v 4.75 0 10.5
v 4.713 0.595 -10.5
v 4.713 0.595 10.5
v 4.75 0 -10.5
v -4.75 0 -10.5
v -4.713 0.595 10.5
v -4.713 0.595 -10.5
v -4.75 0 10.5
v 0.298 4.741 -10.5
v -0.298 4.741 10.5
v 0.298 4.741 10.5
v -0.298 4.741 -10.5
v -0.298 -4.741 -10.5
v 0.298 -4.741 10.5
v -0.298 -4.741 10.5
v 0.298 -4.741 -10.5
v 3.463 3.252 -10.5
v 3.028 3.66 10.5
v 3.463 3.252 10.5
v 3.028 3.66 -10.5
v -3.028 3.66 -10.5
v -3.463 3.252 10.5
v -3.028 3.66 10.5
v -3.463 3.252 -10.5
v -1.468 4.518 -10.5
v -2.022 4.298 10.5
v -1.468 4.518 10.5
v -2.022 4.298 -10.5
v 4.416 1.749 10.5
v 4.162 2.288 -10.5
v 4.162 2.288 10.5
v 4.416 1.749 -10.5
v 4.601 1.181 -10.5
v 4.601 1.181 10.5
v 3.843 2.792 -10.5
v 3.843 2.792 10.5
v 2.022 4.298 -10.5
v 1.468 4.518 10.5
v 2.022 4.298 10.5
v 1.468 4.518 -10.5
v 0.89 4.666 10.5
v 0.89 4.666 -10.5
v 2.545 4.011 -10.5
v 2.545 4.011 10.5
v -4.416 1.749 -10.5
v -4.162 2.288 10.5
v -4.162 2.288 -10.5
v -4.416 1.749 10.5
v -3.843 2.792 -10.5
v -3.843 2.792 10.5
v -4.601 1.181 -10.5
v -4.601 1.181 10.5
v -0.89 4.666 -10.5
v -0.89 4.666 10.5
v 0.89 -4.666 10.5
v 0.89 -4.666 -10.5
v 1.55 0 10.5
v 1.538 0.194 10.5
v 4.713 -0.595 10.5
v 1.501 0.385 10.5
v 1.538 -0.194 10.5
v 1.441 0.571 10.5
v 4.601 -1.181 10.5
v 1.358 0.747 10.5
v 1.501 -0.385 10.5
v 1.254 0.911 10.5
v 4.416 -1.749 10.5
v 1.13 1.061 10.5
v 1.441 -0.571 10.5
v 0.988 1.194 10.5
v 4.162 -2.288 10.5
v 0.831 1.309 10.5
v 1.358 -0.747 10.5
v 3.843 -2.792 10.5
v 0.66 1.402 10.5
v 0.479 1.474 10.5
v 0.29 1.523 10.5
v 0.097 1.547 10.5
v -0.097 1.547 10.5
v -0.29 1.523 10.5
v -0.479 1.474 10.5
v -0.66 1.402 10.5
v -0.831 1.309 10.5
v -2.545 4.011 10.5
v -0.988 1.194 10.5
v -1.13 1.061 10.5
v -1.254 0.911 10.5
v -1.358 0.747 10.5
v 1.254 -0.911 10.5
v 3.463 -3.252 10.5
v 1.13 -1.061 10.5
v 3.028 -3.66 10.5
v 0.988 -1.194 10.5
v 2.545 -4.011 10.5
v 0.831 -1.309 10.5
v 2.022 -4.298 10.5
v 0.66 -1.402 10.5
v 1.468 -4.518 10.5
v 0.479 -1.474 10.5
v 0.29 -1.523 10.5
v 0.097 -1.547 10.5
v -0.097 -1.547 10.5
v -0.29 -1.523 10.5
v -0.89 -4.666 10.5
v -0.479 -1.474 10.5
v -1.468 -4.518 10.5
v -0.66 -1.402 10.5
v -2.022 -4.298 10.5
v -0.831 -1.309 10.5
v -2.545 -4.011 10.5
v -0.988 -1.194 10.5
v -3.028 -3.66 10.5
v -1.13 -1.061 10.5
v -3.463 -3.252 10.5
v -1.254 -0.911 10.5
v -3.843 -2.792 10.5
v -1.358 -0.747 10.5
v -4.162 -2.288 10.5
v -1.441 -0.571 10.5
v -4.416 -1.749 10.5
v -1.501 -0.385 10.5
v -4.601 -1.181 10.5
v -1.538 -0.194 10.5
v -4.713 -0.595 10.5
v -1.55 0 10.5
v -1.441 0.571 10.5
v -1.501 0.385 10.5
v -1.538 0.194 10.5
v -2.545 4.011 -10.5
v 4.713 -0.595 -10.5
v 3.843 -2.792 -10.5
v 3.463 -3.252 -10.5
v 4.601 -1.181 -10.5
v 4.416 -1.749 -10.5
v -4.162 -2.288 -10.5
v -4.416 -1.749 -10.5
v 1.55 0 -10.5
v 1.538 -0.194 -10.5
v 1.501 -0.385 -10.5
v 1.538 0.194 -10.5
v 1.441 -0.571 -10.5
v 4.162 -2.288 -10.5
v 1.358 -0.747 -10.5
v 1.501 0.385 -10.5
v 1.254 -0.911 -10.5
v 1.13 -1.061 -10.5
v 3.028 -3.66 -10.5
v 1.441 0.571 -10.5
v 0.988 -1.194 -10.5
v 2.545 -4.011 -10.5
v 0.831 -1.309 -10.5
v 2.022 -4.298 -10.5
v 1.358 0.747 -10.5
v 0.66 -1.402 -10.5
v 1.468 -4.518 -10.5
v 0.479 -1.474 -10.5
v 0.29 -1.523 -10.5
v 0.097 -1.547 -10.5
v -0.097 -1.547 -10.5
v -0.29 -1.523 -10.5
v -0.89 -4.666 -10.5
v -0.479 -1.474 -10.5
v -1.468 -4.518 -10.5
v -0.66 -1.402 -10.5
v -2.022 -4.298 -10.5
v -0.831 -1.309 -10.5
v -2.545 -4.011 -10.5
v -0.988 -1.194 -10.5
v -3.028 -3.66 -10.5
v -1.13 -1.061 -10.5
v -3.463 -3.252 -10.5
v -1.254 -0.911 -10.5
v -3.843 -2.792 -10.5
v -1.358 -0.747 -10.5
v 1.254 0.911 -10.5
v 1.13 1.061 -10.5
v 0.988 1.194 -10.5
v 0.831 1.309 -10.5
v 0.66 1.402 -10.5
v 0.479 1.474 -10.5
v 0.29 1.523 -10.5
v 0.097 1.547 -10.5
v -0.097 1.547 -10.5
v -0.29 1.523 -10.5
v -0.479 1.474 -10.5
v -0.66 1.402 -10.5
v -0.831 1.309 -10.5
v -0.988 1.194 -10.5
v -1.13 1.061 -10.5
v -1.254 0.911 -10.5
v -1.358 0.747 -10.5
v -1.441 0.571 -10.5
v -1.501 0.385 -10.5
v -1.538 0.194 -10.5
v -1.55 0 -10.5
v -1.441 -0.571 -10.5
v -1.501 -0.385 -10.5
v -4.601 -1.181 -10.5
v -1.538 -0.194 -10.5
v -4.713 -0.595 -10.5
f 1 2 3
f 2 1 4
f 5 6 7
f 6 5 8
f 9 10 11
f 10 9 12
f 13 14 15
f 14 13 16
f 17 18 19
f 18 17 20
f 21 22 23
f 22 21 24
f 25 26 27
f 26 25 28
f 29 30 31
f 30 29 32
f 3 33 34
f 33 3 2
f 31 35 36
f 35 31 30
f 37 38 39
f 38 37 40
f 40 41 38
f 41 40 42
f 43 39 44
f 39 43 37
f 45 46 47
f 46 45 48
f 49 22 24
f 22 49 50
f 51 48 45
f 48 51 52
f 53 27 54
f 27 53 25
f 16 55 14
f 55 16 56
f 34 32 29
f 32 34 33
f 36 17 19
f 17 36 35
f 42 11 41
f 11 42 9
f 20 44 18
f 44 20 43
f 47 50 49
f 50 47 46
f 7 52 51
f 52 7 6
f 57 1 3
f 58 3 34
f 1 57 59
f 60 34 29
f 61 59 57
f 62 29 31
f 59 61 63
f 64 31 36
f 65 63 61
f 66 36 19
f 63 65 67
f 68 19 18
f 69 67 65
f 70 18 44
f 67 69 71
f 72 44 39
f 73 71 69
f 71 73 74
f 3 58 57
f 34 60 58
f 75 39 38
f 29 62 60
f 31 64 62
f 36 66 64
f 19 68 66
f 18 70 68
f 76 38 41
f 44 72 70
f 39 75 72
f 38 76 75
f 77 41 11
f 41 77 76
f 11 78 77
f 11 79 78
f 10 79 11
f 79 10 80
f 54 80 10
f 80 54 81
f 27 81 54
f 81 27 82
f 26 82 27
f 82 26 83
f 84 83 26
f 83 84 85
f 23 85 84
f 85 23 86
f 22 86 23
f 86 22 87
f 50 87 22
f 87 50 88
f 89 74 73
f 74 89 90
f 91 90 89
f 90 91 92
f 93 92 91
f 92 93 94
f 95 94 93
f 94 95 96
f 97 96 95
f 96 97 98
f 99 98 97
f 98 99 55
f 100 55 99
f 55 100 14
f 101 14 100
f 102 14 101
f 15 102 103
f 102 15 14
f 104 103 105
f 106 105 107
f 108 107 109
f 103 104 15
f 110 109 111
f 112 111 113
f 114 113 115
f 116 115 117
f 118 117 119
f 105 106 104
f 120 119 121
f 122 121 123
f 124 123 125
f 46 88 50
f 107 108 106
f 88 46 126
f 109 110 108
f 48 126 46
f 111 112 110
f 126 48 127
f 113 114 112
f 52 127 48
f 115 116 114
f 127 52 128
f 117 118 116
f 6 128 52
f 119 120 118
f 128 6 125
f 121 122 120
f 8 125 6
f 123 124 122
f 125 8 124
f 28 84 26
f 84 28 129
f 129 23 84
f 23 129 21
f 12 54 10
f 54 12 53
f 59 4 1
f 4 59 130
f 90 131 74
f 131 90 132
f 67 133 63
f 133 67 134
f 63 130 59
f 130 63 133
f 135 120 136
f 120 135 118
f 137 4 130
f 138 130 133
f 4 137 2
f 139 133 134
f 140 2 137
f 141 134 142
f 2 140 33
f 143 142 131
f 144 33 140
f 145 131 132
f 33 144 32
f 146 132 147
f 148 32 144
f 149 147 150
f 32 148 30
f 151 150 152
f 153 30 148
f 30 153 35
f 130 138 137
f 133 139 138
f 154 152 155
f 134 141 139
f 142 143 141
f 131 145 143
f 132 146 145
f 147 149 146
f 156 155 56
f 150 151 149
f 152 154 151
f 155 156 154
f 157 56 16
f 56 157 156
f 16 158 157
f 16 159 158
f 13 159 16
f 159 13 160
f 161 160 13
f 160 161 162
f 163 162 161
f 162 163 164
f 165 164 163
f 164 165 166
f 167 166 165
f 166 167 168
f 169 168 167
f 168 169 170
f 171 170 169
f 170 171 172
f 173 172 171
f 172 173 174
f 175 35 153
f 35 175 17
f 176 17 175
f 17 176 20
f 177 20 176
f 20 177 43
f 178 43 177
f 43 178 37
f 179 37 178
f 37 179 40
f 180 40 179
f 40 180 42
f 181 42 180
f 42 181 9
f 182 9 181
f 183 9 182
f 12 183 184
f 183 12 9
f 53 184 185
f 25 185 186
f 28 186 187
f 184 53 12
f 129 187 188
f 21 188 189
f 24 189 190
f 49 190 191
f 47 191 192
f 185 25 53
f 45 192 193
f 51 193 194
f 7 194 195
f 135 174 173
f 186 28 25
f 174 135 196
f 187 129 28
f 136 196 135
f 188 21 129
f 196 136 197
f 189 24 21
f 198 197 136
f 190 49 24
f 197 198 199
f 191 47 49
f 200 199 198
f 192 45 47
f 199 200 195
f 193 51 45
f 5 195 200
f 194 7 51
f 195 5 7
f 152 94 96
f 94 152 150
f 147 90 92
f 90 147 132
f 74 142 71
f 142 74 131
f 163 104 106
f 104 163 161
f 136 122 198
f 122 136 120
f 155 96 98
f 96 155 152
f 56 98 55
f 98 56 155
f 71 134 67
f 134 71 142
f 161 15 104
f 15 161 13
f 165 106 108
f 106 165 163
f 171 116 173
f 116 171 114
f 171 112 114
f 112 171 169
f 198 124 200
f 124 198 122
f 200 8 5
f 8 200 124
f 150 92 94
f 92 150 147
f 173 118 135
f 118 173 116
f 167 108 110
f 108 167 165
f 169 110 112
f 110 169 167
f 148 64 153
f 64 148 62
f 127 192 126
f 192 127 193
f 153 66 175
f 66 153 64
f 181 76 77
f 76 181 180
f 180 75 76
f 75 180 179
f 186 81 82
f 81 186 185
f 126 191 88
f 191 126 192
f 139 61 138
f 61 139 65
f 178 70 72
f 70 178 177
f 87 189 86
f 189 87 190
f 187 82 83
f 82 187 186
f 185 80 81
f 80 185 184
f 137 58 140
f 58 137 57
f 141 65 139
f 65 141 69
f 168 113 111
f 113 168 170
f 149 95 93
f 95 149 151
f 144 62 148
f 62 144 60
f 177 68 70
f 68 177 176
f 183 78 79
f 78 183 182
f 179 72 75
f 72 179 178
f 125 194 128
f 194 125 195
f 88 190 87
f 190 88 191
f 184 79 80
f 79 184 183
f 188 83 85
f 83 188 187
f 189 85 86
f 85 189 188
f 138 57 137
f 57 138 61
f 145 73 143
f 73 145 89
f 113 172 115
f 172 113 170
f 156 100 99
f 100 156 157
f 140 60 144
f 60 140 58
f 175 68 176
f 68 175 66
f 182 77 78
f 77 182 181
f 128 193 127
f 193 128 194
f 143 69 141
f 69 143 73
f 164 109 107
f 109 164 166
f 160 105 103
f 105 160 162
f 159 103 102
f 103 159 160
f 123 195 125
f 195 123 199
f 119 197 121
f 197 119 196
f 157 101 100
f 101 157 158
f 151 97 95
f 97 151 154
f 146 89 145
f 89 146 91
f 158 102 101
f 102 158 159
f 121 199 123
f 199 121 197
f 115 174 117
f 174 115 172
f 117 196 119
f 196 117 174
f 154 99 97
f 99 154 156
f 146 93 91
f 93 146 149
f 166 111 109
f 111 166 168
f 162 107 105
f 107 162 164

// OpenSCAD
$fn = 50;


difference() {
	union() {
		translate(v = [0, 0, -10.5000000000]) {
			cylinder(h = 21, r = 4.7500000000);
		}
	}
	union() {
		translate(v = [0, 0, -100.0000000000]) {
			cylinder(h = 200, r = 1.5500000000);
		}
	}
}
